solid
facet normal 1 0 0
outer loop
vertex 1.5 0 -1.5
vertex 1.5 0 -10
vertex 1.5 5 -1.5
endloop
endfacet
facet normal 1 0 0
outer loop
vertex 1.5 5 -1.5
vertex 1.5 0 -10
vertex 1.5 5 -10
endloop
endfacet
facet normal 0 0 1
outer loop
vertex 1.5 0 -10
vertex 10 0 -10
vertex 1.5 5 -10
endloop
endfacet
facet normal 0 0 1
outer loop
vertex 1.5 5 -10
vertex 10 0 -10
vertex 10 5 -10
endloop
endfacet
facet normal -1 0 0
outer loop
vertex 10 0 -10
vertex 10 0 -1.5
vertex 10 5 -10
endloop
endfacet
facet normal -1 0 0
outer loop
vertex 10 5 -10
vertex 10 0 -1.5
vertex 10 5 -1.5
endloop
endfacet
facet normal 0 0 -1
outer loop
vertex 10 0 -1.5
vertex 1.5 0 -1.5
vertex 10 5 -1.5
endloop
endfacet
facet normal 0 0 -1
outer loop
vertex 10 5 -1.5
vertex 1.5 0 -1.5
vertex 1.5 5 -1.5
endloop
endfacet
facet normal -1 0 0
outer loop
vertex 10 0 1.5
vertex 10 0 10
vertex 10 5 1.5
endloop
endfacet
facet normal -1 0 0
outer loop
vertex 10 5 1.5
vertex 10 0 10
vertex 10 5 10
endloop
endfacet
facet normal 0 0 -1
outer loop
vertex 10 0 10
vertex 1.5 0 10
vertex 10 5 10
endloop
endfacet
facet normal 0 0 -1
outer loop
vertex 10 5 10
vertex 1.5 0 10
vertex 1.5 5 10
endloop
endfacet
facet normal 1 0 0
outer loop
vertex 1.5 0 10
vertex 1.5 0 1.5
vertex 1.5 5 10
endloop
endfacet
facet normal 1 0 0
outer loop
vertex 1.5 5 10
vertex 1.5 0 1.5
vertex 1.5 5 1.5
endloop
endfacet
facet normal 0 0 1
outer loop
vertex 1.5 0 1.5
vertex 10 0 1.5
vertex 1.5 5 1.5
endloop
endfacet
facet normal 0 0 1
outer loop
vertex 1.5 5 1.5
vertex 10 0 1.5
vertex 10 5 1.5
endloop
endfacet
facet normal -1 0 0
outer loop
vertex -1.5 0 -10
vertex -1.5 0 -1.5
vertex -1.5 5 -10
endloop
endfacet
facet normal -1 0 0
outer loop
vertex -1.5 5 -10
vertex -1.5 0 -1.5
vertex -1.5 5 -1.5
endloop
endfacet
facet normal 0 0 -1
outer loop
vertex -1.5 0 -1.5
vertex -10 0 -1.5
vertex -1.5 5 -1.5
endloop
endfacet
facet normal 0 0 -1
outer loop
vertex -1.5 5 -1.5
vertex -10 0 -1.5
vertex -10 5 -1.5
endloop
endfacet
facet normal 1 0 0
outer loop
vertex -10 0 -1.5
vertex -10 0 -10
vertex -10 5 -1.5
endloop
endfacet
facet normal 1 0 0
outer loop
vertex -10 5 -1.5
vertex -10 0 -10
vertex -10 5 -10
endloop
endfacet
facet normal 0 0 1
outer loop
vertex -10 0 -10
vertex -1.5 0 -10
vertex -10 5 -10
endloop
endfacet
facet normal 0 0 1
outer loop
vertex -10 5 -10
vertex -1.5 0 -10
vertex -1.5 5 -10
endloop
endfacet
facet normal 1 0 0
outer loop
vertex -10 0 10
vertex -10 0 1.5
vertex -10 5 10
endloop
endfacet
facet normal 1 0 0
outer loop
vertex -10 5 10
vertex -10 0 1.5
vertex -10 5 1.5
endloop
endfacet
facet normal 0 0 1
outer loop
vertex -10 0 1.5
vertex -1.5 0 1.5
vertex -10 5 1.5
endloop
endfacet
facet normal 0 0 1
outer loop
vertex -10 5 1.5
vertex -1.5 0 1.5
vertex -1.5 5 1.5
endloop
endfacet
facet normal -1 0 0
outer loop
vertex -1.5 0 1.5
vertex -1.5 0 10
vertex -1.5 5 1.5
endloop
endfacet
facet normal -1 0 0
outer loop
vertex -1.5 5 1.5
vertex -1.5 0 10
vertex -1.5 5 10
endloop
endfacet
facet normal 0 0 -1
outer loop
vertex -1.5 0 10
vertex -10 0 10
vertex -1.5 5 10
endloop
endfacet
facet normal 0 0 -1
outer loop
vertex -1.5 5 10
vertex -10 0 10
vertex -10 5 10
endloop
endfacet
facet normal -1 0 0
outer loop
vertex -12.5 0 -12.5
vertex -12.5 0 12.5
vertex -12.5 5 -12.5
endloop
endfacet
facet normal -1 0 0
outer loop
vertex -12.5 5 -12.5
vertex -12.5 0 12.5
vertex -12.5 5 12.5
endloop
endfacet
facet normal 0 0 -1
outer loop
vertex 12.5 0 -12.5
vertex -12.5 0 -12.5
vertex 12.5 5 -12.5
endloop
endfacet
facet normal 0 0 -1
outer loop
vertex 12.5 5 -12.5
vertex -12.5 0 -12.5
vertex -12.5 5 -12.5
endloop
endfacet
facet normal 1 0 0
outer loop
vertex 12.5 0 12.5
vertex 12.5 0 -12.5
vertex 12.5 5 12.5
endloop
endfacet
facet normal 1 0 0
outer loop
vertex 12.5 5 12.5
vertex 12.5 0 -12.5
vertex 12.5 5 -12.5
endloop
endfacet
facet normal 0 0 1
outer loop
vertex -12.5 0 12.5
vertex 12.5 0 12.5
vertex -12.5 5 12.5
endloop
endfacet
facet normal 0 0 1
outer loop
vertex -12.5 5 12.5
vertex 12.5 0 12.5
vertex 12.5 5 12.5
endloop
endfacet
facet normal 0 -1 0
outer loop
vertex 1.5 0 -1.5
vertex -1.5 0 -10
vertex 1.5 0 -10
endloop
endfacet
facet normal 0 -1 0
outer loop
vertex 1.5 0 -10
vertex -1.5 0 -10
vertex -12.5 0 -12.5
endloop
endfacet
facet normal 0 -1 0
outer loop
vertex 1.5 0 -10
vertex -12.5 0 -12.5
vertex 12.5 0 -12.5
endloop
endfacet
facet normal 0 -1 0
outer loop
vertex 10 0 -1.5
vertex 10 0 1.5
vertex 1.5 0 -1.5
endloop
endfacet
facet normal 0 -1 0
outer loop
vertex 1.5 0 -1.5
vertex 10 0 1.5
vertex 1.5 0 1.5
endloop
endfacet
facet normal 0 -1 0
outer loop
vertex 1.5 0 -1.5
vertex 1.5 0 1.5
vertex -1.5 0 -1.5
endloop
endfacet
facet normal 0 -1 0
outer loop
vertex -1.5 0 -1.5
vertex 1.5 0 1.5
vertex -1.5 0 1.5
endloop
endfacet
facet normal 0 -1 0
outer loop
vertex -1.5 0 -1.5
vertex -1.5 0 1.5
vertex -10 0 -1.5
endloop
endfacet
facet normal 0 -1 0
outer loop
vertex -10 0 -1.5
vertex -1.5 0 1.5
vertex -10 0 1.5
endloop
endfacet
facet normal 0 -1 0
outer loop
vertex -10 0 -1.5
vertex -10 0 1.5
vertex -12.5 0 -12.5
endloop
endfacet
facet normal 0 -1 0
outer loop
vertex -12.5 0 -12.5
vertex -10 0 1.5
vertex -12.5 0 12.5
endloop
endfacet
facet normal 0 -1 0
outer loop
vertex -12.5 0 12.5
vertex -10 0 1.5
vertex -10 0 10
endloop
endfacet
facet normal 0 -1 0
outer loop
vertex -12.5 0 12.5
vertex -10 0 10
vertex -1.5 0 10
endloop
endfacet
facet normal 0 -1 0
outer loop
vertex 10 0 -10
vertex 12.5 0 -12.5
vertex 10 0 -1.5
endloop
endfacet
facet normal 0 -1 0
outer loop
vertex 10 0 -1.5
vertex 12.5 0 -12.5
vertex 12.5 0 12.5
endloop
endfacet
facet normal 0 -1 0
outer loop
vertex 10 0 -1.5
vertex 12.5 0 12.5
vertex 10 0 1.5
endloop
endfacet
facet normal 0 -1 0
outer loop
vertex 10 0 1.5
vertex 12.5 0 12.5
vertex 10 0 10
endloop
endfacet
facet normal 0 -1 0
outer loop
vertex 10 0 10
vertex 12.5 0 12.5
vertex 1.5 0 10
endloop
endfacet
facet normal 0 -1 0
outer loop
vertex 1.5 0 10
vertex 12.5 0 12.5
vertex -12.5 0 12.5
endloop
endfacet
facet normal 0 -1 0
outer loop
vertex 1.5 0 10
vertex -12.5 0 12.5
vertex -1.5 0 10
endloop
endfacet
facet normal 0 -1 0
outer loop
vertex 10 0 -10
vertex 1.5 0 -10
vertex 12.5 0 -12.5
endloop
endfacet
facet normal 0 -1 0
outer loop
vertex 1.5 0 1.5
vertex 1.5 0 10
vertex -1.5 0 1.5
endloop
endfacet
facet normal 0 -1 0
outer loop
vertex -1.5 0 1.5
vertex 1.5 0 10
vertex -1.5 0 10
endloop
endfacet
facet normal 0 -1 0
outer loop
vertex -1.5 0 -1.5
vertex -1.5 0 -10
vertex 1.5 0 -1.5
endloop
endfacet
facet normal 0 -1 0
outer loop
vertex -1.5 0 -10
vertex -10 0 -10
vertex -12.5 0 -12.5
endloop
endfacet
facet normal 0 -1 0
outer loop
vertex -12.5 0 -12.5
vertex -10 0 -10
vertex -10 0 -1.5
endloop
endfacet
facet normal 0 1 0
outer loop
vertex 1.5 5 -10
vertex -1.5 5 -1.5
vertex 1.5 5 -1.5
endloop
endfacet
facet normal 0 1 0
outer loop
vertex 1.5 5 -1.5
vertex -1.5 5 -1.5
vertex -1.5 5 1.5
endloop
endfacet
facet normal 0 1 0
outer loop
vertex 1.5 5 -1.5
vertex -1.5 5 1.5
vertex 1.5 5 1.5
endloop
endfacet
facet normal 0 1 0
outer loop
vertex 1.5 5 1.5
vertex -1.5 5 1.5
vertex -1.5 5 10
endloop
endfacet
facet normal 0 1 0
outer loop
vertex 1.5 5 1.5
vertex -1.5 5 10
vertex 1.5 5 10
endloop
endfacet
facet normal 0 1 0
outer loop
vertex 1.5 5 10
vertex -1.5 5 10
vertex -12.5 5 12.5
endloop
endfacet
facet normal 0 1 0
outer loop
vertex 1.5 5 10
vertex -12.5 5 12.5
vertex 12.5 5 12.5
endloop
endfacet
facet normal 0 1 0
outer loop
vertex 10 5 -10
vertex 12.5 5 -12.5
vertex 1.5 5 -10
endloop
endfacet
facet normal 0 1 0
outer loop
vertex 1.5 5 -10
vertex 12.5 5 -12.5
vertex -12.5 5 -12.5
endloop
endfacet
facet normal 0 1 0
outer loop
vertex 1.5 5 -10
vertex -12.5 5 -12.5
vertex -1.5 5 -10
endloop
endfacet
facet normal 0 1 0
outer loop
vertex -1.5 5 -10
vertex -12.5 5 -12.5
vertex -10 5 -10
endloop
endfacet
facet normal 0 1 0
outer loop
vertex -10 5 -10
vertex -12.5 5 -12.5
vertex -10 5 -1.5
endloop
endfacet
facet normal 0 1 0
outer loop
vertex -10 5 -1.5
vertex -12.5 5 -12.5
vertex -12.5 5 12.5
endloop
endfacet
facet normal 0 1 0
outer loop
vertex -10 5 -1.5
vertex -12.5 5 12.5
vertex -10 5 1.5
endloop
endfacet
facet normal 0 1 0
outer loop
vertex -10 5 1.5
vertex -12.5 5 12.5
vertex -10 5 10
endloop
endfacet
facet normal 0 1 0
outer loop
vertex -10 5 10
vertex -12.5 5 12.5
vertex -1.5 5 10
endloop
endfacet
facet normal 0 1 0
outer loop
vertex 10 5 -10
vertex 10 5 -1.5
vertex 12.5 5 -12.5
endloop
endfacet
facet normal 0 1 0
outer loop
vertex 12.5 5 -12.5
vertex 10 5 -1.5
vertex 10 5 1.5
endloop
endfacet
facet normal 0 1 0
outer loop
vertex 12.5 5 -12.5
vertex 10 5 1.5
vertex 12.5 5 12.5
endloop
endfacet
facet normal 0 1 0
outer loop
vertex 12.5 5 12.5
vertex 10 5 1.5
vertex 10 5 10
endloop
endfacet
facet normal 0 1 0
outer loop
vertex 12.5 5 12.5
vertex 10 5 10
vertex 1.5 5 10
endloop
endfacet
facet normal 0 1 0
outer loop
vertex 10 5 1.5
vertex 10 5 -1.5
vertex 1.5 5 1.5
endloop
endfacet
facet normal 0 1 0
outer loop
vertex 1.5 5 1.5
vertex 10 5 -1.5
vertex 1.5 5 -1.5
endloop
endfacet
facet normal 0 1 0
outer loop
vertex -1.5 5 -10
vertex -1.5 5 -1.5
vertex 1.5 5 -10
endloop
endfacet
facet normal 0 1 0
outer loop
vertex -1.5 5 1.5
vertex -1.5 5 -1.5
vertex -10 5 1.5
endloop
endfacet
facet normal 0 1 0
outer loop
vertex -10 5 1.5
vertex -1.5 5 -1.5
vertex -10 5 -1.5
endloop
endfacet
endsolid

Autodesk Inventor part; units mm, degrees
ref_plane "YZ Plane" through (0, 0, 0) normal (1, 0, 0) x (0, 1, 0)
ref_plane "XZ Plane" through (0, 0, 0) normal (0, 1, 0) x (-1, 0, 0)
ref_plane "XY Plane" through (0, 0, 0) normal (0, 0, 1) x (1, 0, 0)
sketch "Skizze1" plane through (0, 0, 0) normal (0, 1, 0) x (-1, 0, 0)
  line L0 (-12.5, 12.5) -> (12.5, 12.5)
  line L1 (12.5, 12.5) -> (12.5, -12.5)
  line L2 (12.5, -12.5) -> (-12.5, -12.5)
  line L3 (-12.5, -12.5) -> (-12.5, 12.5)
  line L4 (-12.5, 12.5) -> (12.5, -12.5) construction
  line L5 (12.5, 12.5) -> (-12.5, -12.5) construction
  line L6 (10, 10) -> (1.5, 10)
  line L7 (1.5, 10) -> (1.5, 1.5)
  line L8 (1.5, 1.5) -> (10, 1.5)
  line L9 (10, 1.5) -> (10, 10)
  line L10 (10, -10) -> (1.5, -10)
  line L11 (1.5, -10) -> (1.5, -1.5)
  line L12 (1.5, -1.5) -> (10, -1.5)
  line L13 (10, -1.5) -> (10, -10)
  line L14 (-1.5, 1.5) -> (-10, 1.5)
  line L15 (-10, 1.5) -> (-10, 10)
  line L16 (-10, 10) -> (-1.5, 10)
  line L17 (-1.5, 10) -> (-1.5, 1.5)
  line L18 (-1.5, -1.5) -> (-10, -1.5)
  line L19 (-10, -1.5) -> (-10, -10)
  line L20 (-10, -10) -> (-1.5, -10)
  line L21 (-1.5, -10) -> (-1.5, -1.5)
  point P0 (0, 0)
  dimension "d0" = 25
  dimension "d1" = 25
  dimension "d2" = 8.5
  dimension "d3" = 8.5
  dimension "d4" = 8.5
  dimension "d5" = 8.5
  dimension "d6" = 8.5
  dimension "d7" = 8.5
  dimension "d8" = 8.5
  dimension "d9" = 8.5
  dimension "d10" = 2.5
  dimension "d11" = 2.5
  dimension "d12" = 2.5
extrude "Extrusion1" add sketch "Skizze1" along normal blind 5
properties part number "Hydrogel_Test"
